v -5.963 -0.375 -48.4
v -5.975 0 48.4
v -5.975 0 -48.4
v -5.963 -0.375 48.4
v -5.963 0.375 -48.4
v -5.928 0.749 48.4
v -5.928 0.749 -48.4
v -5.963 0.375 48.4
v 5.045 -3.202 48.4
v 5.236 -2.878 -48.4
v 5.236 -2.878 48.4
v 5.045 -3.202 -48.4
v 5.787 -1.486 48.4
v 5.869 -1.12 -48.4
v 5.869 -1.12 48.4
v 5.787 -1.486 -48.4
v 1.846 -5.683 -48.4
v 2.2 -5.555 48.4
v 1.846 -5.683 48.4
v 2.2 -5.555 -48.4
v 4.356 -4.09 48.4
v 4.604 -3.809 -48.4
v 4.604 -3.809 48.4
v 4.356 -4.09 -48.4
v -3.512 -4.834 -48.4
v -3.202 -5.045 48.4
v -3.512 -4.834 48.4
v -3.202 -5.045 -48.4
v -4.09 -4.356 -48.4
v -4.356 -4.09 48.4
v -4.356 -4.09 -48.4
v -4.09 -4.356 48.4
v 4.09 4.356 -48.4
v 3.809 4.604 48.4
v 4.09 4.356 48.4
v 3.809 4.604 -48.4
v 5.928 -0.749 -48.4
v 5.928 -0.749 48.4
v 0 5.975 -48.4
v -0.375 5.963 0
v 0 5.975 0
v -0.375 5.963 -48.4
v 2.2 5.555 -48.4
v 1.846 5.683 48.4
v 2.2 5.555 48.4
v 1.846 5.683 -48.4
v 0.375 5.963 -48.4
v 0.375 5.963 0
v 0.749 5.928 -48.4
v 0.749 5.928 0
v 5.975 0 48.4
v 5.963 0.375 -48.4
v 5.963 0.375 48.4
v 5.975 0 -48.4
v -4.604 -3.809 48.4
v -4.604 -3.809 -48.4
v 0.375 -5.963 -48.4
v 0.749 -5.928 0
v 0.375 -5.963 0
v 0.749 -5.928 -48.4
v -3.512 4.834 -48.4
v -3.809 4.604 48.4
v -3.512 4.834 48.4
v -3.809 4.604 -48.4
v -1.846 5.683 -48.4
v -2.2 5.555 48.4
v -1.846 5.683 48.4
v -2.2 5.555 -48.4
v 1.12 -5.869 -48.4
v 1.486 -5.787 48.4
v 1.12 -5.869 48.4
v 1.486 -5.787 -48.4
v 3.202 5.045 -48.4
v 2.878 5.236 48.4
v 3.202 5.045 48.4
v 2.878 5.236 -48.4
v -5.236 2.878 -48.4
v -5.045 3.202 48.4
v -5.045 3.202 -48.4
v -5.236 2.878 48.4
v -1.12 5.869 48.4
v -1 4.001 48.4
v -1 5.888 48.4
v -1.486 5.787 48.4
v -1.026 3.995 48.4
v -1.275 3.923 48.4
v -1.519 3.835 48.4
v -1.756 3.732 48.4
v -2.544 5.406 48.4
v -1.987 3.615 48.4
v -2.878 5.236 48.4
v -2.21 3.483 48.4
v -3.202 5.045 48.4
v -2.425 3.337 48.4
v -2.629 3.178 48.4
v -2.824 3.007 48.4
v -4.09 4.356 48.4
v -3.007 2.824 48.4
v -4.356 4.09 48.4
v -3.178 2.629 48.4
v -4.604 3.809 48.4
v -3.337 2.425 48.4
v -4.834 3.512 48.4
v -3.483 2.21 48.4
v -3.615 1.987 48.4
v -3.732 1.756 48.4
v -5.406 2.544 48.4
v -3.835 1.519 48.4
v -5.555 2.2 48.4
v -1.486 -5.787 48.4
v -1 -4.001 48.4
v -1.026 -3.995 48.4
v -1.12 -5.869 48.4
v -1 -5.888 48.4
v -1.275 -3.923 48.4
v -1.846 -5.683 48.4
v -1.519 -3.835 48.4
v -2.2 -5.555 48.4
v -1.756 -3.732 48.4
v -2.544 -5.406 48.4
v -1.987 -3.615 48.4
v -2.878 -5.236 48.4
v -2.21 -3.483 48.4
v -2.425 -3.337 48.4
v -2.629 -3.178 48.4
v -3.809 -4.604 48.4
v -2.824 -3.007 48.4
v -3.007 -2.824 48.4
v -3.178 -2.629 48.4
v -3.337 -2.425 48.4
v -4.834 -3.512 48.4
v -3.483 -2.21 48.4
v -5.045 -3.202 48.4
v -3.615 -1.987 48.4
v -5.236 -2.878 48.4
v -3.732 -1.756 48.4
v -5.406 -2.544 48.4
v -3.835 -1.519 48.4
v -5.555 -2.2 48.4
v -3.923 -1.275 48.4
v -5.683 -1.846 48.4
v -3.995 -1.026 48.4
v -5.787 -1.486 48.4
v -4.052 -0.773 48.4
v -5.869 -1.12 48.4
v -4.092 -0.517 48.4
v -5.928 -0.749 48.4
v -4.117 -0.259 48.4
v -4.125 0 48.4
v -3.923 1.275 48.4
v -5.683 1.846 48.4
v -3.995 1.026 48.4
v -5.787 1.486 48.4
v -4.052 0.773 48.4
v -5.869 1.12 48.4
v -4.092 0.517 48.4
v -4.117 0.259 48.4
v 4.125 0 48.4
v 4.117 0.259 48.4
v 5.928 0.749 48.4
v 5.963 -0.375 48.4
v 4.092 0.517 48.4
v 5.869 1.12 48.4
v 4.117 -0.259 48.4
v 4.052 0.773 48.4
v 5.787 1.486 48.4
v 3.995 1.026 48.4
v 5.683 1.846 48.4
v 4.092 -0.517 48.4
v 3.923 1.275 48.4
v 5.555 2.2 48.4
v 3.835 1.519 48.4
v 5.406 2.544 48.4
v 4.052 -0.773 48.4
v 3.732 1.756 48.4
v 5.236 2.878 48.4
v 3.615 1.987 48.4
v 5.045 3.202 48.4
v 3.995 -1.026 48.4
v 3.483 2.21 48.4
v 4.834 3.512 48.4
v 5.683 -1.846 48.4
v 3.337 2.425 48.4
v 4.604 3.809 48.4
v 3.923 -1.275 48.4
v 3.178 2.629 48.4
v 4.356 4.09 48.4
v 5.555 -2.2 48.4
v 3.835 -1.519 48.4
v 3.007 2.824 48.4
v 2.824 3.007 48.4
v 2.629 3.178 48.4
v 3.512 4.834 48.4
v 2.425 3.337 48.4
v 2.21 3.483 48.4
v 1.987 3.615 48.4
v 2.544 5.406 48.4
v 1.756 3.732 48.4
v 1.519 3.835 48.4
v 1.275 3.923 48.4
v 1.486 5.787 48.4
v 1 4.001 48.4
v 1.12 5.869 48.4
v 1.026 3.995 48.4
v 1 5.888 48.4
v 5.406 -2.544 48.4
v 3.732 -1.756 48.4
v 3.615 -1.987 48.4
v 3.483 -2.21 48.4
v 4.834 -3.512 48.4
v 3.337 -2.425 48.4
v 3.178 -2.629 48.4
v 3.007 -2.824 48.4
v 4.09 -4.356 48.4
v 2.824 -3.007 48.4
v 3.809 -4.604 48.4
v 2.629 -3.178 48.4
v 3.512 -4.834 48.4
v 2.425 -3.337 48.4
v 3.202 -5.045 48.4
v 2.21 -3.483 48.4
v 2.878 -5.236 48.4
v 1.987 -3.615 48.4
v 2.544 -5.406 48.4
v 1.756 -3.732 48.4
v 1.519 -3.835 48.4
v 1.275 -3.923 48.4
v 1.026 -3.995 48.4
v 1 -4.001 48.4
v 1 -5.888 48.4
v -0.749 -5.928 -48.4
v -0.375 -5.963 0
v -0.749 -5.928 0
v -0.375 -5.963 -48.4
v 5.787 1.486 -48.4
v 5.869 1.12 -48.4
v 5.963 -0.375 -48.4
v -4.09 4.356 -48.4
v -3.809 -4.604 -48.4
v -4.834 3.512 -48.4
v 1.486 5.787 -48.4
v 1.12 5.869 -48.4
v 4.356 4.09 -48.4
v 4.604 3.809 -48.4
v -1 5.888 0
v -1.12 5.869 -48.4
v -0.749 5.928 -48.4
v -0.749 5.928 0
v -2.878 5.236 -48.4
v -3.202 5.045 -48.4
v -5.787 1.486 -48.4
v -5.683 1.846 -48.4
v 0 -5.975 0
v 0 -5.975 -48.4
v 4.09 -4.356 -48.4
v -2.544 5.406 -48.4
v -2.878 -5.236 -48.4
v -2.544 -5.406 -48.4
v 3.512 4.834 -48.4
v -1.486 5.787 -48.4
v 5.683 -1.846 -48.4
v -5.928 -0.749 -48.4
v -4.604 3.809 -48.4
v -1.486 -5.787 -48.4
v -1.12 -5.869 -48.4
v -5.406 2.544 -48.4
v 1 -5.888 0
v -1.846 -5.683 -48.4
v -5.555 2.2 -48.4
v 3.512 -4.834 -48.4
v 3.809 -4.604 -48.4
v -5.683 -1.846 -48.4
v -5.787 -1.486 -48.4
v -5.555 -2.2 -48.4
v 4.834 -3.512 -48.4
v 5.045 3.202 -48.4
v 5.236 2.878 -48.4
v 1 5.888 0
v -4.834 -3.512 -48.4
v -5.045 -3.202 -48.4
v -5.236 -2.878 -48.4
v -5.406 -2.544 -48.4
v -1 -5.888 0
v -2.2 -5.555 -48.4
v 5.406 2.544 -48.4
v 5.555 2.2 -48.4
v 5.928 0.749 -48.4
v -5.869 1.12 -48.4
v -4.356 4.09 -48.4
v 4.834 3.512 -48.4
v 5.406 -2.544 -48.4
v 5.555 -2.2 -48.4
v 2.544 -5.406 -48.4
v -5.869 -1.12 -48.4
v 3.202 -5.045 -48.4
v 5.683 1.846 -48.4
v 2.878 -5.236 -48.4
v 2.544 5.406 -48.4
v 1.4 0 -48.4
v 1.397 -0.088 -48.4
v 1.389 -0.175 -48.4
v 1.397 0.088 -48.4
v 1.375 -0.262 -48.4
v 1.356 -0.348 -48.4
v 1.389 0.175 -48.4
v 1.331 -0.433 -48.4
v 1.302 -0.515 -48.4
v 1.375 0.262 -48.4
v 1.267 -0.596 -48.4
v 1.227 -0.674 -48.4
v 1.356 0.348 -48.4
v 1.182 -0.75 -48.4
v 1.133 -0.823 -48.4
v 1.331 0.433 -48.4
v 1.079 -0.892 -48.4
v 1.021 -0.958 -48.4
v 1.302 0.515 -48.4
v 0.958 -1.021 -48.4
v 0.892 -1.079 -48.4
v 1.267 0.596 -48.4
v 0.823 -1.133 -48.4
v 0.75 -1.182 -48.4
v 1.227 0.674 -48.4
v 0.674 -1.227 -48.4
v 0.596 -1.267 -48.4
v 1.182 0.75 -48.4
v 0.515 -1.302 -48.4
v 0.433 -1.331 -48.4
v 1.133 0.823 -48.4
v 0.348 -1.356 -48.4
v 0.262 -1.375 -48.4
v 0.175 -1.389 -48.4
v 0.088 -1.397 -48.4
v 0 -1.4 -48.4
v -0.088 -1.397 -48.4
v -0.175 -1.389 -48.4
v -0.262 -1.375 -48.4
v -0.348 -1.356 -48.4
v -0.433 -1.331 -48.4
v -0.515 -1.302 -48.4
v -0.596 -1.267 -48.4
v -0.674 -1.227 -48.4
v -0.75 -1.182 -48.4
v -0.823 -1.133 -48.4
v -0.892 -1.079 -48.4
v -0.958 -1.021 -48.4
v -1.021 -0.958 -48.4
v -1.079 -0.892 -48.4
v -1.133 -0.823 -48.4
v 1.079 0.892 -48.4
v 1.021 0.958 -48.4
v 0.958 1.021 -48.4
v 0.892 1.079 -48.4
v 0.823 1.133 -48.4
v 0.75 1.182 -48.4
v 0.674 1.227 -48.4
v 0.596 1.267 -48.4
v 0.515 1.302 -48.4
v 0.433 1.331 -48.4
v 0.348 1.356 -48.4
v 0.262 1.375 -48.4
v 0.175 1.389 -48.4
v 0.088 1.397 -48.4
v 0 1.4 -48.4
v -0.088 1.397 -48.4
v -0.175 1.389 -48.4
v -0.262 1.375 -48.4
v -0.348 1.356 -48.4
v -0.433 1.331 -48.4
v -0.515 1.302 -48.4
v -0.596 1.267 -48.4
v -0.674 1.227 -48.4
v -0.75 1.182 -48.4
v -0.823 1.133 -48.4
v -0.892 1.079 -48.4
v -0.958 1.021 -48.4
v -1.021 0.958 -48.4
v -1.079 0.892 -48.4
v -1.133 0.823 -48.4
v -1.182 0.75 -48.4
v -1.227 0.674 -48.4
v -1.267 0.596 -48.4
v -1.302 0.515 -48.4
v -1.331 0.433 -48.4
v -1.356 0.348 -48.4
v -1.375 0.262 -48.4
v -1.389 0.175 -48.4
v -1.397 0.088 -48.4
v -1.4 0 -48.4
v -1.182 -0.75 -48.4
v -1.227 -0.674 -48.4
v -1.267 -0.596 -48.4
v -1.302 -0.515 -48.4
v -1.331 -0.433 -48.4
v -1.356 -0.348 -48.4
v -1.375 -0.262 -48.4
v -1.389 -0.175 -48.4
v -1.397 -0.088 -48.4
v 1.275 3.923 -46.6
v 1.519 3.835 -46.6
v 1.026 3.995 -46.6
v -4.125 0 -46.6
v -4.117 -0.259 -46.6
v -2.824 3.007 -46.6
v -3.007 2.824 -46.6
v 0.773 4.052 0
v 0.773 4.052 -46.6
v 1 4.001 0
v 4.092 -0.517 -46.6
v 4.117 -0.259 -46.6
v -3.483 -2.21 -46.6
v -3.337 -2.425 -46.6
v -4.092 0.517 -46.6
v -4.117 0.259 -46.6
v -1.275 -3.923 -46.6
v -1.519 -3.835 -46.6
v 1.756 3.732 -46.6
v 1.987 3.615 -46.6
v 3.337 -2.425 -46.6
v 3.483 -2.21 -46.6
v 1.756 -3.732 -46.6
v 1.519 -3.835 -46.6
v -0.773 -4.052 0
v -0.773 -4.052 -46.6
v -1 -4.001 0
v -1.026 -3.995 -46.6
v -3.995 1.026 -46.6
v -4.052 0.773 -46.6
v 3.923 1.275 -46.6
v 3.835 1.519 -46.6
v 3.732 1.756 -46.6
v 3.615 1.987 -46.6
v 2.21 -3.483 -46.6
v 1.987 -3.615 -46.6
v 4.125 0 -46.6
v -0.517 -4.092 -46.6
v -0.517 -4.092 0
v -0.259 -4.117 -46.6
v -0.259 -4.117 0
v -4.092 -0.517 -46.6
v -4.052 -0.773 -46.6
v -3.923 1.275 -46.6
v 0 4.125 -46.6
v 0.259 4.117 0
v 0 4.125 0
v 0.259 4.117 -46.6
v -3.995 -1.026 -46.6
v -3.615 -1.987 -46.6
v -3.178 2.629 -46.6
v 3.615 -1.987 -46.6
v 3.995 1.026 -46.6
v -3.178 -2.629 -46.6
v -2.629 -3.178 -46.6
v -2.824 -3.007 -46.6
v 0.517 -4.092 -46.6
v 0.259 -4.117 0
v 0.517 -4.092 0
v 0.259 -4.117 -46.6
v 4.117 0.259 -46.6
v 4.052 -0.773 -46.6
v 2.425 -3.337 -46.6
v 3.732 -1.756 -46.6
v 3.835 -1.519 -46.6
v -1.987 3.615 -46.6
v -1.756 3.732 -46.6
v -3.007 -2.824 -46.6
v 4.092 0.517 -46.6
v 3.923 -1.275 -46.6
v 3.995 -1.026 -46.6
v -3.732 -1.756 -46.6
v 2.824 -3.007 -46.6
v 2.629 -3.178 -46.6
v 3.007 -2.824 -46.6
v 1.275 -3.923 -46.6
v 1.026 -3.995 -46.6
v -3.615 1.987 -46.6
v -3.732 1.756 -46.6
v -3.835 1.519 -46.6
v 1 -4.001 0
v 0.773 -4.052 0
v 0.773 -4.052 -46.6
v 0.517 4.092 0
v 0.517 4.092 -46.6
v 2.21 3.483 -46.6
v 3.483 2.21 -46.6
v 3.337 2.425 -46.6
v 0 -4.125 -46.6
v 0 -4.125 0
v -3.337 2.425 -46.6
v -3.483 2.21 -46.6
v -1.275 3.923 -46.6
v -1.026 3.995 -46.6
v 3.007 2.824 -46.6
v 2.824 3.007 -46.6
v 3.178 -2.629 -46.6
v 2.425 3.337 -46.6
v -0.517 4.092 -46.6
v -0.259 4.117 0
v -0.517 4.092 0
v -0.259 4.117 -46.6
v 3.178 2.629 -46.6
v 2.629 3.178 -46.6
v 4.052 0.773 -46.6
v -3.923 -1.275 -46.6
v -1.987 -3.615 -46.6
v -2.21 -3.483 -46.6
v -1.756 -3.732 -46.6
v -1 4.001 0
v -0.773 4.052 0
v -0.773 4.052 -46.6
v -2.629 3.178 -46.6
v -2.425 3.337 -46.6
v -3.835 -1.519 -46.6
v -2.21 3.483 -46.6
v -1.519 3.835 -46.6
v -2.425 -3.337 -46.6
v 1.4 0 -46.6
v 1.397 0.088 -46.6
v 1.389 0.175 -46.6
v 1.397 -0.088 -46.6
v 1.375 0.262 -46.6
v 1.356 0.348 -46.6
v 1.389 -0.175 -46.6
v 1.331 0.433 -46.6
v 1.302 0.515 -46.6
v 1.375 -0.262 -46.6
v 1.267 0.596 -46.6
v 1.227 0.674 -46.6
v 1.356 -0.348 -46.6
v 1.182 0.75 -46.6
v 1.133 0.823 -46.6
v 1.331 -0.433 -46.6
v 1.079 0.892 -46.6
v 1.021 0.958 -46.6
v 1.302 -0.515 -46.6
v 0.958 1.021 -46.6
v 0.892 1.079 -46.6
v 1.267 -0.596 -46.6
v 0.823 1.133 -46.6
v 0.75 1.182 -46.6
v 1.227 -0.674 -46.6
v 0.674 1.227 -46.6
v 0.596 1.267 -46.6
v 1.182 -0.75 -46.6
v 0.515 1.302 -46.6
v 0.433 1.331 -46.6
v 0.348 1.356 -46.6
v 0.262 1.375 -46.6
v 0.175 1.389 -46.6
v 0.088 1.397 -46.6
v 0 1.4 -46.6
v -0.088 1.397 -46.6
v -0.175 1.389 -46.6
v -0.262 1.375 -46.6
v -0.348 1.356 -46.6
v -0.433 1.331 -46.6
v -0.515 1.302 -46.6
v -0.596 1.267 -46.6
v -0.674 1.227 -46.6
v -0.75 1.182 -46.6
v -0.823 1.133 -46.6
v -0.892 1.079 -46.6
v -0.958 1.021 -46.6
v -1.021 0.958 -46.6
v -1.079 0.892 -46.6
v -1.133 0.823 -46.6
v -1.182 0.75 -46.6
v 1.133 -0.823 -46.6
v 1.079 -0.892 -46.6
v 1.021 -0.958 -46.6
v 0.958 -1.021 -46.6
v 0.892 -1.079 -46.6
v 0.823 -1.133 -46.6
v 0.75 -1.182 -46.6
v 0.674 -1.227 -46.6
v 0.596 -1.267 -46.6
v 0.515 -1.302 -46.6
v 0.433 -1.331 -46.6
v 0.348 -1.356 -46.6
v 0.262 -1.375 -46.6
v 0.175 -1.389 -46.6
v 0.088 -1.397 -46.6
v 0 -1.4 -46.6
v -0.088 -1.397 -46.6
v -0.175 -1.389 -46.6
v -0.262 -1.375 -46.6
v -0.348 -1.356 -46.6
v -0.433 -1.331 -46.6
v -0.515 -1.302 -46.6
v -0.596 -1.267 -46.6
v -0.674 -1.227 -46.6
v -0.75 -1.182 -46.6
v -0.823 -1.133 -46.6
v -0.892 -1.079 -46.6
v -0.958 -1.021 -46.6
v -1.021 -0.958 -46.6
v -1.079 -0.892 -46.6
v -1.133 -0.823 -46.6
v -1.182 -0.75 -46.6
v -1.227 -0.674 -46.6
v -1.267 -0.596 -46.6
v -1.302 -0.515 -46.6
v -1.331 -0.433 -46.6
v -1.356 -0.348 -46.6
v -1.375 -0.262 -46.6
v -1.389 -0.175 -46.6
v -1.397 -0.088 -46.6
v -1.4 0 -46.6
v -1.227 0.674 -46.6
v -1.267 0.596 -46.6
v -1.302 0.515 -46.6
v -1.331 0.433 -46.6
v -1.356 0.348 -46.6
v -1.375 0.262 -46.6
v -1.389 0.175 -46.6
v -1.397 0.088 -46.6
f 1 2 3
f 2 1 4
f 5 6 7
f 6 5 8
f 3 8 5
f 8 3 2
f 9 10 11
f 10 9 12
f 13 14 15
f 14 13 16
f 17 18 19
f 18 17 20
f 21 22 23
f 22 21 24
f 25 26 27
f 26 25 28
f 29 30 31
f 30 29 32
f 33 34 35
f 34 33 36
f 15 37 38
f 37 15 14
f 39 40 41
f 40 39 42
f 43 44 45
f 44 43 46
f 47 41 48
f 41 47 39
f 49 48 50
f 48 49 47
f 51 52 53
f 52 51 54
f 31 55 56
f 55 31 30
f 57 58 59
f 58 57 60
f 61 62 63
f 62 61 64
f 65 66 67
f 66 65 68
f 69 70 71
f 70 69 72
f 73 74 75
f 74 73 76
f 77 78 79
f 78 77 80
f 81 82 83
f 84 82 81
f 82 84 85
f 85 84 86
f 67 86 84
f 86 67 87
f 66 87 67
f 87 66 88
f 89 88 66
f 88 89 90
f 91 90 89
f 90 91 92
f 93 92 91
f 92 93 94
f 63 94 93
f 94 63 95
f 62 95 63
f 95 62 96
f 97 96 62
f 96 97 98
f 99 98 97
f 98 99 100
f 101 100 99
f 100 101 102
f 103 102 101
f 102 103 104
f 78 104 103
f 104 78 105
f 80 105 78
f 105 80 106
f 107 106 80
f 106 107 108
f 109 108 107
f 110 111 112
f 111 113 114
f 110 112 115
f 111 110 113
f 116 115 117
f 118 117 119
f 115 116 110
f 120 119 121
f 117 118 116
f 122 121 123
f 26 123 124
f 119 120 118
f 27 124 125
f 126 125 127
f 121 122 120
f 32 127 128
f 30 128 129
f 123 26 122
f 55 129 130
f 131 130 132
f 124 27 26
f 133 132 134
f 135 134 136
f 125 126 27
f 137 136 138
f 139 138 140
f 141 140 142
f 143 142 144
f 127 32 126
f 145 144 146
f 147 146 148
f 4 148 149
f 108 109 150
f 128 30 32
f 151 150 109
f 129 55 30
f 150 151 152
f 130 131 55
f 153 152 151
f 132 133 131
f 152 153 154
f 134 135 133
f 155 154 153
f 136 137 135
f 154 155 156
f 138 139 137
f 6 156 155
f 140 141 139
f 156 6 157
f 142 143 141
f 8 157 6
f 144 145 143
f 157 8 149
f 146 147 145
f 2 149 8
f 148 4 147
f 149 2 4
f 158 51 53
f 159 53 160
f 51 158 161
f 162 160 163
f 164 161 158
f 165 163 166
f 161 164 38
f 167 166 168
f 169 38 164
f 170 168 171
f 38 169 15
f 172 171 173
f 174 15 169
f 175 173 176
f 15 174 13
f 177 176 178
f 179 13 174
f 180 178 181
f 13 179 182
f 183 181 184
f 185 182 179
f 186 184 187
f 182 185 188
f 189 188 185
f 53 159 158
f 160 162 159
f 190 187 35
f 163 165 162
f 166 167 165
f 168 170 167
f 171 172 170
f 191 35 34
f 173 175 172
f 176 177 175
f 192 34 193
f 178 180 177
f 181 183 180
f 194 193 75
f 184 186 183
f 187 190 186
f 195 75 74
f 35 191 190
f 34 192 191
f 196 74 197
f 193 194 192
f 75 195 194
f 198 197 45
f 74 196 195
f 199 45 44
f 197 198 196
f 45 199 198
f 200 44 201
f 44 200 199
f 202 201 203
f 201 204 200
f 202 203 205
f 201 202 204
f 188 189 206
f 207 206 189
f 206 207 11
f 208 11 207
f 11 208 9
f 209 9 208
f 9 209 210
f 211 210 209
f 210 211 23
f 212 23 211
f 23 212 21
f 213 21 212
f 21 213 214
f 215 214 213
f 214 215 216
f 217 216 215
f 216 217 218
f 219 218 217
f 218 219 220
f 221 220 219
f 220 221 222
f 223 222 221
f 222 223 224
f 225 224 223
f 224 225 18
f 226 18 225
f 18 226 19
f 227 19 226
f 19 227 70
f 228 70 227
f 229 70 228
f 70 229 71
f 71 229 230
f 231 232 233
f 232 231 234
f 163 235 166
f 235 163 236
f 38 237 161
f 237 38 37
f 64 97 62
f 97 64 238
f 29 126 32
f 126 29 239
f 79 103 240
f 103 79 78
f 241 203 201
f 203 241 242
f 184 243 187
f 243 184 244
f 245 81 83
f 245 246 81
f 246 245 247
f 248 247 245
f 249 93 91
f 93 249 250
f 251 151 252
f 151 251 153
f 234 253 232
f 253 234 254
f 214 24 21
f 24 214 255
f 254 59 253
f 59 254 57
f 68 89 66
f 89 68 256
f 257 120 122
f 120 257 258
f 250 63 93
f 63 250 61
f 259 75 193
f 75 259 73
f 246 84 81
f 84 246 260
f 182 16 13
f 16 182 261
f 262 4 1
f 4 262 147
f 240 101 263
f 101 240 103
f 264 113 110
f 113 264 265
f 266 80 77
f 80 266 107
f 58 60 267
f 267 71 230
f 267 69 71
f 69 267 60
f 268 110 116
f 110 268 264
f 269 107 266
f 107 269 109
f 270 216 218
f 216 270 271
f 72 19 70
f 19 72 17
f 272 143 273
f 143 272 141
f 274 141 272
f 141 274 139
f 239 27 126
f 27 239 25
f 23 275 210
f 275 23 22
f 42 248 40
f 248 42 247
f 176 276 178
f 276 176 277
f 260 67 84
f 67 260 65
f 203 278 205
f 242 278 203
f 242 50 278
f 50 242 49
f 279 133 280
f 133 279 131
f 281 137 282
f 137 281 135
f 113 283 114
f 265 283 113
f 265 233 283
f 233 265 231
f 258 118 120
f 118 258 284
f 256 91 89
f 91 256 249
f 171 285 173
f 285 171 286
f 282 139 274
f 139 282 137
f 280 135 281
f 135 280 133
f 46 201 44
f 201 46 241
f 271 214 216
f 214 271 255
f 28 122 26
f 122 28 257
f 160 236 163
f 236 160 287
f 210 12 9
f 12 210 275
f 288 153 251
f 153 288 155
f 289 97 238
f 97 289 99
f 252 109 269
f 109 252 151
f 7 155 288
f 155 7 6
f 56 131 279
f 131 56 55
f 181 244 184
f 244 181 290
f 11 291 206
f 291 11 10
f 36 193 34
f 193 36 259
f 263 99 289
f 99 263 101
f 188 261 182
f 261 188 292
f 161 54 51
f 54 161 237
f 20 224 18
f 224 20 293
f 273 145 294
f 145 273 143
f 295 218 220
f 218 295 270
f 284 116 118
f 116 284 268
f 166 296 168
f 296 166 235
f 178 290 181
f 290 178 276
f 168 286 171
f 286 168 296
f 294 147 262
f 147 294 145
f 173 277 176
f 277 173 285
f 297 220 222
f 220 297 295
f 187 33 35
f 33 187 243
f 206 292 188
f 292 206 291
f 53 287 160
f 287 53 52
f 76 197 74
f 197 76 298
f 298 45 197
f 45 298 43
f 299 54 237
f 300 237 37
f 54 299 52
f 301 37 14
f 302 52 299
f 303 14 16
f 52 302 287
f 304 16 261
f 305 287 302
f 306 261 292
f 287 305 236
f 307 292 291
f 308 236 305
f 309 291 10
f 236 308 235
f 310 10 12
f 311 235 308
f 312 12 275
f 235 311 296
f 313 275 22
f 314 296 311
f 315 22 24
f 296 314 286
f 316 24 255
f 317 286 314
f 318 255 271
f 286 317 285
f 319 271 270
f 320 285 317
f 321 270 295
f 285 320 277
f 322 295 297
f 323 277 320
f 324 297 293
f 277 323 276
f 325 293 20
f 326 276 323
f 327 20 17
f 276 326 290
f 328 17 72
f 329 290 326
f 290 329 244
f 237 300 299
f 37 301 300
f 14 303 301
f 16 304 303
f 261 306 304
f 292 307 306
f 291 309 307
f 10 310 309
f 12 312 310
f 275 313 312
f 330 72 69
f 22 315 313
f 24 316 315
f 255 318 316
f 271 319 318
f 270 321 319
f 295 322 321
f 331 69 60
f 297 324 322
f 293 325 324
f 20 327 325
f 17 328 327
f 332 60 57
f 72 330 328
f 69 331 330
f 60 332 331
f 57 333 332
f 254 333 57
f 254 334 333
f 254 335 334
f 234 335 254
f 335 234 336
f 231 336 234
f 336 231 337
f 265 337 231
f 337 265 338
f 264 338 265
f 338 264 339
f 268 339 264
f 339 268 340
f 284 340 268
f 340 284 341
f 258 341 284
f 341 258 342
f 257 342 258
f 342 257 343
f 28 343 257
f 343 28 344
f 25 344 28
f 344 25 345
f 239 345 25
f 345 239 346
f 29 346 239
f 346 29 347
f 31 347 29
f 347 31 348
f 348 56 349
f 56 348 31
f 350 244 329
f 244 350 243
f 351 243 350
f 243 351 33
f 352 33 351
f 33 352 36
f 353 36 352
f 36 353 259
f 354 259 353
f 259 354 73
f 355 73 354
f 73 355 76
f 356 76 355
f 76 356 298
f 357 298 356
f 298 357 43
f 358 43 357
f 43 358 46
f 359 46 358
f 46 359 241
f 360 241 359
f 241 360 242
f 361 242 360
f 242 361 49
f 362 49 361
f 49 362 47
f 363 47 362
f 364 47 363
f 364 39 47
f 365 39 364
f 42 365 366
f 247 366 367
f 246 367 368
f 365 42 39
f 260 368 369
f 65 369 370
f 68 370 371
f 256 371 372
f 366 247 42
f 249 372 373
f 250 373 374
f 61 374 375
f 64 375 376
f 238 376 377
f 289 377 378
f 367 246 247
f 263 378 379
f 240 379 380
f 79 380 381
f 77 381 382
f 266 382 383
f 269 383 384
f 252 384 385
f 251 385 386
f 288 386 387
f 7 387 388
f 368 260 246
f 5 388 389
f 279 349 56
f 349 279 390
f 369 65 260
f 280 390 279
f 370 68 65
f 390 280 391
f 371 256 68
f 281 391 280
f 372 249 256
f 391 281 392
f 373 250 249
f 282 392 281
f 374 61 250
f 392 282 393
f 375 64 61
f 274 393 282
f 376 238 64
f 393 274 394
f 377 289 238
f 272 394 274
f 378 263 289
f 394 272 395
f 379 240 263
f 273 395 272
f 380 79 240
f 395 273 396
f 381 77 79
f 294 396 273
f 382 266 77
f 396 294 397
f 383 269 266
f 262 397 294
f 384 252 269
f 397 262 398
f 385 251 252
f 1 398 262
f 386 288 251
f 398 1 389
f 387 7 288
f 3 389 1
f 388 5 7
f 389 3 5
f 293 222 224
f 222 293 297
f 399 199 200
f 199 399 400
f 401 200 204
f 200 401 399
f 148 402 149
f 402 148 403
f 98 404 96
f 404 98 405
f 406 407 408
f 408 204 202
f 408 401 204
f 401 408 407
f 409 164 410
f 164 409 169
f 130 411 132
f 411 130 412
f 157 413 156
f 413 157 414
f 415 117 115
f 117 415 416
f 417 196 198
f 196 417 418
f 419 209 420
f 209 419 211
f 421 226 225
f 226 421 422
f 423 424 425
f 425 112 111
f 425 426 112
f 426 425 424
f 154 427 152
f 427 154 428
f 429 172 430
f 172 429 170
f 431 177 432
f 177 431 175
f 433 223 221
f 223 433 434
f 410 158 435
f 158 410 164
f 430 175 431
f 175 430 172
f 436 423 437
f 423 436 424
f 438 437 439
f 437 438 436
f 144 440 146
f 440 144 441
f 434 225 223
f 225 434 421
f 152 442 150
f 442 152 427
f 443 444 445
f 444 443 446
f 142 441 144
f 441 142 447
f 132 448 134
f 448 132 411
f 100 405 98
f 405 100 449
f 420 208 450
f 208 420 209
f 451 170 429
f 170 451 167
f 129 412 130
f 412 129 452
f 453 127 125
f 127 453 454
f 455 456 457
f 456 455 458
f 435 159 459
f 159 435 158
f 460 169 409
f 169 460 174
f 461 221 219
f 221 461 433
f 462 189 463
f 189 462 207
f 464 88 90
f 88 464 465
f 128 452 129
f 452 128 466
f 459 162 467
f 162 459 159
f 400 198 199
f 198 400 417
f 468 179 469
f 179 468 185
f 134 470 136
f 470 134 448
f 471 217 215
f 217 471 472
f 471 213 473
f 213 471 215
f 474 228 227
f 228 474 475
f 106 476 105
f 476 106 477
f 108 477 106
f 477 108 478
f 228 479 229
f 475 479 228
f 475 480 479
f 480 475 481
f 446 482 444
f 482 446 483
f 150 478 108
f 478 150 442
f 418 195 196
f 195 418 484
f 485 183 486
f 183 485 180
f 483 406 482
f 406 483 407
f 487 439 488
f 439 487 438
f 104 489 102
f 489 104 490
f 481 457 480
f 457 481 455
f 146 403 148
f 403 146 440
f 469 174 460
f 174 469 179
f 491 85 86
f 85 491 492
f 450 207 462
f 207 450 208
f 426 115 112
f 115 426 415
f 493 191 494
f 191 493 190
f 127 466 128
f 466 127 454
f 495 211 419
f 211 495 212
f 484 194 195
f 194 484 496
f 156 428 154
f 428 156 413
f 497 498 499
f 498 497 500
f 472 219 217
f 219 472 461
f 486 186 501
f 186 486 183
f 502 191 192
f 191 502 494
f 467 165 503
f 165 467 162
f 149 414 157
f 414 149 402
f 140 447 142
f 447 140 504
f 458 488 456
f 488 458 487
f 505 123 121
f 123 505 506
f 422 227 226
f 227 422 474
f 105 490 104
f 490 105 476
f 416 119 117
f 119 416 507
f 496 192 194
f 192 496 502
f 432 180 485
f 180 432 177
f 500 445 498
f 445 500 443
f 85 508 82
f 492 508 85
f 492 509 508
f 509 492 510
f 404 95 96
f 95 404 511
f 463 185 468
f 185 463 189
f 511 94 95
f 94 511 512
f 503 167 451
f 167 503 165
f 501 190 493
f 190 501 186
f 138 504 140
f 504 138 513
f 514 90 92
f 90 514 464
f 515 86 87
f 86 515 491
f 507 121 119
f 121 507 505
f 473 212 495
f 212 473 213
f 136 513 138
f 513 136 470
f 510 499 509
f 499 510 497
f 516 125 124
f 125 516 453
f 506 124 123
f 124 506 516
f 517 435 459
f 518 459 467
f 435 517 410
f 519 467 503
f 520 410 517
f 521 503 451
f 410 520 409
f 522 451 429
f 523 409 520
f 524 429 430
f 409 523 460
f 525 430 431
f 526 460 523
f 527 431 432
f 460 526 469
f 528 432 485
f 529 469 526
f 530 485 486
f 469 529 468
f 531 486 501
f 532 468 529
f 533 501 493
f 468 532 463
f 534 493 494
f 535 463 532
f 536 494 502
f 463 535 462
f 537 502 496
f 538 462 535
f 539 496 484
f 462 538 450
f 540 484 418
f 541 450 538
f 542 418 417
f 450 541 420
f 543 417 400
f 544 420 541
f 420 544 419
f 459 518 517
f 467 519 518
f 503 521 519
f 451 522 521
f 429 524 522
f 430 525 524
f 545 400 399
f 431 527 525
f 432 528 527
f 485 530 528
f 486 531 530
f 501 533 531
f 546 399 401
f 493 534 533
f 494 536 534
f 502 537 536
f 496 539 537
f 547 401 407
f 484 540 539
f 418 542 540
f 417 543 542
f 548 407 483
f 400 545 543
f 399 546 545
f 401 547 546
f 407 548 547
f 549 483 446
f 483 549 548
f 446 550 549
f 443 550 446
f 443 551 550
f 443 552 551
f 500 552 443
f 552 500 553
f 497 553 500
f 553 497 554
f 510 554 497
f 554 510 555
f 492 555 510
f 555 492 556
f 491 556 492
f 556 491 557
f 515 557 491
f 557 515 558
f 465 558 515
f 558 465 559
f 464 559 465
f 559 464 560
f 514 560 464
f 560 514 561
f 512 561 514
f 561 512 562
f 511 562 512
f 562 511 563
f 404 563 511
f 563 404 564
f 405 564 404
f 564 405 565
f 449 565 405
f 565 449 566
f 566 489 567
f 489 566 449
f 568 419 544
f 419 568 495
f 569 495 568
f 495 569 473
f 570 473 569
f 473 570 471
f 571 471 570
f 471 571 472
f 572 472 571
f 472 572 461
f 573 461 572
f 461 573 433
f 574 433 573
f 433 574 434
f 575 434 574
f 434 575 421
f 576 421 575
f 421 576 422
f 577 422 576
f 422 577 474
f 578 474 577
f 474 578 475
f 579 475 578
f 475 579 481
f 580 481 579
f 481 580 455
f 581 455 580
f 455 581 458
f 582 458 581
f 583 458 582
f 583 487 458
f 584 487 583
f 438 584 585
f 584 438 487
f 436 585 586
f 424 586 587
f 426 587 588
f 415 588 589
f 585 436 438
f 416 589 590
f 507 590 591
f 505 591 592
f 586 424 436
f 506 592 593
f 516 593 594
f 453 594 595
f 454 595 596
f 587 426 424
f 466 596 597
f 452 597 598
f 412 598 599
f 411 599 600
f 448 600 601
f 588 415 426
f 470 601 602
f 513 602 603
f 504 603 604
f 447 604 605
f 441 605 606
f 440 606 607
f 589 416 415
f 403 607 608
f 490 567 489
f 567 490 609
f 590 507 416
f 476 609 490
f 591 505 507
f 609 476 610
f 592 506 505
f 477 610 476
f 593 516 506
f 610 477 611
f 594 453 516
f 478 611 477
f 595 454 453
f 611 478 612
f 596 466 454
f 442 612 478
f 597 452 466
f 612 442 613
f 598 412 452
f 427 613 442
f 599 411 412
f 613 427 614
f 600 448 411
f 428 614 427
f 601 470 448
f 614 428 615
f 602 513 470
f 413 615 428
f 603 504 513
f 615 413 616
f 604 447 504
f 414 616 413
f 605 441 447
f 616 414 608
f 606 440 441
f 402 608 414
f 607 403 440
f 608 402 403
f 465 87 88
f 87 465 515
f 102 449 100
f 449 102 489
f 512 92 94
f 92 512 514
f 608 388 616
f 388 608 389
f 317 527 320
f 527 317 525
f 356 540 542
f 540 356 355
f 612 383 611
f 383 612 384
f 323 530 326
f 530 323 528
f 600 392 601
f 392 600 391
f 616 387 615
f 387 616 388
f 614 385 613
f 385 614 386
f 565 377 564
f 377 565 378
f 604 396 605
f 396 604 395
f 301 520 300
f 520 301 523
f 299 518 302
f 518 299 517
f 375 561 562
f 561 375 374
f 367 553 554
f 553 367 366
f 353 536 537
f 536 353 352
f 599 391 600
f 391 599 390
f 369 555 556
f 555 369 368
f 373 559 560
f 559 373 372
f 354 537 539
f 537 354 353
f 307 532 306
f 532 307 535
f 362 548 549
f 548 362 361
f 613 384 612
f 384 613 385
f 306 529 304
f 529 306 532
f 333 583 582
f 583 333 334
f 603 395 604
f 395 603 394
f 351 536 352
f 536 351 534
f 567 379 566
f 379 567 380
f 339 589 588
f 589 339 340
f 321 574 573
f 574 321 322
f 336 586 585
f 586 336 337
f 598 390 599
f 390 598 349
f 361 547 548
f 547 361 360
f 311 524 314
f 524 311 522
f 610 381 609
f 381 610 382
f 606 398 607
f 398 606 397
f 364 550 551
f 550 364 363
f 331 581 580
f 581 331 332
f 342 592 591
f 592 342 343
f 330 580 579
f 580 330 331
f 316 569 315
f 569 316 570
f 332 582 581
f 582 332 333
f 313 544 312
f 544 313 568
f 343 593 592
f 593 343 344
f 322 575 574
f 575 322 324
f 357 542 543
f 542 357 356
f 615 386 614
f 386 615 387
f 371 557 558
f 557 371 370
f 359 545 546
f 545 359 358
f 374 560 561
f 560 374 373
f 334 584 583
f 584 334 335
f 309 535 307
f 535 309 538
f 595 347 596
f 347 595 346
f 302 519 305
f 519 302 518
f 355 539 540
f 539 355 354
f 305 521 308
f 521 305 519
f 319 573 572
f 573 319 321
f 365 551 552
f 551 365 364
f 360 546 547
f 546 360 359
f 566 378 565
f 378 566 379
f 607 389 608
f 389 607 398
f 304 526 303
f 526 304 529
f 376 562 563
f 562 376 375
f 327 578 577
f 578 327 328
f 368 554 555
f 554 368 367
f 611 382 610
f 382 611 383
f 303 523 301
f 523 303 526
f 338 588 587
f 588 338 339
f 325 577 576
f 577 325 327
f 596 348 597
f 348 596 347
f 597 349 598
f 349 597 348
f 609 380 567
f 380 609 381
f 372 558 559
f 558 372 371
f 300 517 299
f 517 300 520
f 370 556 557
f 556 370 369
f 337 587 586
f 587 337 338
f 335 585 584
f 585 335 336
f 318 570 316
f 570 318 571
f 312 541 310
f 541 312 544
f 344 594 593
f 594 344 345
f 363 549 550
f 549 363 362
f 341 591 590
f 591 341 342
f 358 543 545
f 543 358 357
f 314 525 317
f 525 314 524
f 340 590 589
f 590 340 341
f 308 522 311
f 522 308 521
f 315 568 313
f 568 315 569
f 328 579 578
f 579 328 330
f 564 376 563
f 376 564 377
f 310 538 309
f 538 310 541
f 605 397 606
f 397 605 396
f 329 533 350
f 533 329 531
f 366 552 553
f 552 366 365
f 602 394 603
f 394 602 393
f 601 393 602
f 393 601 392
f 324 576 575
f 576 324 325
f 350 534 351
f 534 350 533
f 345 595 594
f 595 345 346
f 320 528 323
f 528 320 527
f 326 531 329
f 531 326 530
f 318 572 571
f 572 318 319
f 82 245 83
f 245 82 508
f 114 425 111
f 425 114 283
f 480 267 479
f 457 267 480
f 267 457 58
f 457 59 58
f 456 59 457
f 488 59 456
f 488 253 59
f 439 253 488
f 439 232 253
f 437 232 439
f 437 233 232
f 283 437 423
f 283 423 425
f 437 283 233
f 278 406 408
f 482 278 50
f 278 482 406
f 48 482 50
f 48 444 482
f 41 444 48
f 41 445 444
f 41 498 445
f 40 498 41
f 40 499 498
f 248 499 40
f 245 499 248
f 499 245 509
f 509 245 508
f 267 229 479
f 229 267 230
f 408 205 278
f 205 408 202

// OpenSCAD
// file: ../../../shared_helper.scad
// Shared Helper variables and modules

// Variables
quality_value = 100;
$fn = quality_value;

// Screw Holes
m2_hole_diameter = 1.85; // 1.95;
m2_loose_diameter = 2.50;
m2_counter_sink_diameter = 3.80;
m2_counter_sink_length = 2.00;
m2_hole_offset = m2_hole_diameter / 2.0;
m2_hole_height = 100.00;
m2_nut_outer_width = 3.90;
m2_nut_outer_height = 4.40;
m2_nut_outer_depth = 1.50;
// M2_Counter_Sink_Depth

m3_hole_diameter = 2.9; // 2.8
m3_hole_offset = m3_hole_diameter / 2.0;
m3_hole_height = 100.00;
m3_head_diameter = 6.2;
m3_head_depth = 3.0; // 2.5??, 3.0

m4_hole_diameter = 3.85; // 3.90
m4_hole_offset = m4_hole_diameter / 2.0;
m4_hole_height = 100.00;
m4_head_diameter = 7.55;
m4_head_depth = 3.0; // 2.5??, 3.0

// Tolerances
hole_tight_tolerance = 0.05;
hole_loose_tolerance = 0.20;

// Springs
spring_diameter = 5.45;
spring_length = 35.00;

// Nails
brass_nail_diameter = 2.4; // 2.00; // 1.95 at the beginning it tapers
brass_nail_length = 29.54;
brass_nail_head_diameter = 3.20; // 3.00; // oval 2.84 - 3.1 mm
brass_nail_head_depth = 1.80; //1.00; // 1.80; // 2.00;

// General Variables
v_wheel_hole_diameter = 5.20;
v_wheel_offset = (v_wheel_hole_diameter / 2.0) + 2.0;

// Hot-End Holes
stand_off_hole_diameter = m3_hole_diameter;
stand_off_width_distance = 11.60 + stand_off_hole_diameter;

// Magnets
// Small Magnet (Neo)
small_magnet_height = 2.00; // ±2.00 1.97
small_magnet_diameter = 3.00; // ±3.00 // 2.98

// Medium Magnet (Neo)
medium_magnet_height = 2.96; // ±3.00
medium_magnet_diameter = 5.00;

// Large Magnet (ferrite)
large_magnet_height = 2.98; // ±3.00
large_magnet_diameter = 9.79; // ±10.00

// Switches
// D2F Switch
d2f_length = 12.88; // ±12.70
d2f_width = 5.84; // ±5.70
d2f_depth = 6.20; // ±7.00 (5 + 2) ... ±6.50
d2f_pins = 9.00 - 6.50;
d2f_plunger_length = 2.64;
d2f_plunger_width = 0.97; // ±1.00
d2f_plunger_depth = 0.39; // ±0.50
d2f_mount_hole_position = 2.10;
d2f_hole_position_from_centre = 2.85;
d2f_pin_pre_travel = 0.50;
d2f_mount_hole_shift = 4.40 + m2_hole_offset + m2_hole_offset;
d2f_switch_base = 0.2 + 0.7 + 1.50 + 0.55 - 1.0;
d2f_switch_hole_hight = 22.00;
d2f_extra_tolerance_for_switch_holes = 0.12;

// 10t85 Switch
10t85_length = 20.04; // ±19.90
10t85_width = 6.34; // ±6.40
10t85_depth = 10.64; // ±10.70
10t85_plunger_length = 3.28; // ±4.00
10t85_plunger_width = 1.96;
10t85_plunger_depth = 1.30;

// Creality Endstop Board, 2208 V2.0
// creality_endstop_hole_diameter = m3_hole_diameter + hole_loose_tolerance; // Hole is M3 sized but meant for a loose M2
creality_endstop_hole_diameter = m2_hole_diameter + hole_tight_tolerance;
creality_endstop_hole_offset = 15.00;
creality_endstop_board_height = 20.30;
creality_endstop_plug_height_extension = 2.00;
creality_endstop_board_width = 20.20;
creality_endstop_board_thickness = 1.30;
creality_endstop_board_pins_thickness = 3.20 - creality_endstop_board_thickness;
creality_endstop_board_switch_thickness = 8.50 - creality_endstop_board_thickness;
creality_endstop_board_back_space = 2.00; // Taken from the rail mount bracket
creality_endstop_board_back_height = 14.90;
creality_endstop_board_back_width = 16.80;
creality_endstop_back_thickness = 3.30;
creality_endstop_back_hole_wall_spacing = 1.50; //3.00;

// Small Tactile Switch
small_tactile_switch_length = 6.21;
small_tactile_switch_width = 6.17;
small_tactile_switch_depth = 3.18;
small_tactile_switch_plunger_diameter = 3.40;
small_tactile_switch_plunger_depth = 1.40;

// Large Tactile Switch
large_tactile_switch_length = 12.03;
large_tactile_switch_width = 11.95;
large_tactile_switch_depth = 3.12;
large_tactile_switch_plunger_length = 3.75;
large_tactile_switch_plunger_width = 3.70;
large_tactile_switch_plunger_depth = 3.94;

// Button
button_topper_top_diameter = 11.65;
button_topper_bottom_diameter = 12.96;
button_topper_depth = 5.64;
button_topper_bottom_depth = 4.38;

// Belts
// GT2

// Modules
// Creality Mounting Holes
module CrealityCounterSunkHotEndMountingHoles(total_casing_depth, casing_top_extension) {
  // Mounting holes with countersinking - horizontal, through-holes, properly positioned
  cylinder(d=m3_hole_diameter, h=total_casing_depth + 2.00, center=true);
  cylinder(d=m3_hole_diameter, h=total_casing_depth + 2.00, center=true);

  translate([stand_off_width_distance, 0, 0]) {
    cylinder(d=m3_hole_diameter, h=total_casing_depth + 2.00, center=true);
    cylinder(d=m3_head_diameter + hole_loose_tolerance, h=4 + m3_head_depth + 6 + 1.8 + casing_top_extension);
  }
}

module CrealityHotEndMountingHoles(total_casing_depth) {
  cylinder(d=m3_hole_diameter, h=total_casing_depth + 2.00, center=true);

  translate([stand_off_width_distance, 0, 0]) {
    cylinder(d=m3_hole_diameter, h=total_casing_depth + 2.00, center=true);
  }
}

module CrealityEndstopMountHoles(height, include_back_nut_cutout) {
  cylinder(d=creality_endstop_hole_diameter, h=height, center=true);

  translate([creality_endstop_hole_offset, 0, 0]) {
    cylinder(d=creality_endstop_hole_diameter, h=height, center=true);
  }

  if (include_back_nut_cutout) {
    back_depth = m2_nut_outer_depth;

    translate([-2.0, -2.0, 0]) {
      cube([m2_nut_outer_width, m2_nut_outer_height, back_depth]);

      translate([creality_endstop_hole_offset, 0, 0]) {
        cube([m2_nut_outer_width, m2_nut_outer_height, back_depth]);
      }
    }
  }
}

module CrealityEndstopBackSpace(base_cutout_extension) {
  // Smaller gap between screw holes
  translate([creality_endstop_hole_diameter + creality_endstop_back_hole_wall_spacing, 0.0, 0.0]) {
    cube([creality_endstop_board_back_width - 2 * (creality_endstop_hole_diameter + creality_endstop_back_hole_wall_spacing), base_cutout_extension, creality_endstop_back_thickness + 1.0]);
  }

  // Top gap part
  translate([0.0, base_cutout_extension, 0]) {
    cube([creality_endstop_board_back_width, (creality_endstop_board_back_height + base_cutout_extension), creality_endstop_back_thickness + 1.0]);
  }
}

// D2F Switch Mounting
module D2F_Switch_Space() { // Should be used as a negative / difference space
  // D2F Switch Space
  // switch_base = 0.2 + 0.7 + 1.50 + 0.55;
  // switch_base = 0.2 + 0.7 + 1.50 + 0.55 - 1.0;
  switch_base = d2f_switch_base;

  // cube([d2f_depth, d2f_width + 1.05 + 0.75 - 0.95, d2f_length + casing_top_edge_buffer]); // 1.05
  cube([d2f_length, (d2f_width + 2.00) + d2f_pins, d2f_depth]);
}

module D2F_Switch_Mount_Holes() {
  rotate([0, 0, 90]) {
    translate([0.0, d2f_hole_position_from_centre, 0.0]) {
      cylinder(d=m2_hole_diameter + hole_tight_tolerance + (d2f_extra_tolerance_for_switch_holes * 3), h=d2f_switch_hole_hight);
    }

    translate([0.0, -(d2f_hole_position_from_centre + m2_hole_offset), 0.0]) {
      cylinder(d=m2_hole_diameter + hole_tight_tolerance + (d2f_extra_tolerance_for_switch_holes * 3), h=d2f_switch_hole_hight);
    }
  }
}
// main file
// 8mm to 12mm Rod Sleeve Adapter

// This sleeve converts an 8mm linear stainless rod to 12mm mounting holes
// Uses shared_helper.scad for tolerances and quality settings

include <../../../shared_helper.scad>;

revision = 1.0;

// Rod dimensions
inner_rod_diameter = 8.0;
outer_sleeve_diameter = 12.0;
sleeve_length = 25.5 + 8.10 + 63.2; //30.0;  // Adjust as needed // +1.5

// Tolerances
// inner_tolerance = (2 * hole_tight_tolerance) + hole_loose_tolerance;    // Tight perfect fit for the 8mm rod
inner_tolerance = hole_tight_tolerance + hole_loose_tolerance;    // Tight fit for the 8mm rod
outer_tolerance = hole_tight_tolerance;  // Slightly looser fit for the 12mm mounting holes

// Gap parameters for installation
gap_width = 2.0;  // Width of the gap to allow squeezing

// Create the sleeve
rotate([0, 180, 0]) {
  difference() {
    // Outer cylinder
    cylinder(d=outer_sleeve_diameter - outer_tolerance, h=sleeve_length, center=true);

    // Inner hole for 8mm rod
    rotate([0, 0, 180]) {
      translate([0, 0, -sleeve_length + 12.5 + 35.40 + 0.2 - 0.5 -1.0])
      cylinder(d=inner_rod_diameter + inner_tolerance, h=sleeve_length);
    }

    // Small hole to push rod out
    cylinder(d=m3_hole_diameter - 0.1, h=sleeve_length + 1.0, center=true);

    // Gap to allow squeezing for installation
    translate([0, 0, -sleeve_length/2 - 0.5])
    cube([gap_width, outer_sleeve_diameter + 1, sleeve_length + 1], center=true);
  }
}
